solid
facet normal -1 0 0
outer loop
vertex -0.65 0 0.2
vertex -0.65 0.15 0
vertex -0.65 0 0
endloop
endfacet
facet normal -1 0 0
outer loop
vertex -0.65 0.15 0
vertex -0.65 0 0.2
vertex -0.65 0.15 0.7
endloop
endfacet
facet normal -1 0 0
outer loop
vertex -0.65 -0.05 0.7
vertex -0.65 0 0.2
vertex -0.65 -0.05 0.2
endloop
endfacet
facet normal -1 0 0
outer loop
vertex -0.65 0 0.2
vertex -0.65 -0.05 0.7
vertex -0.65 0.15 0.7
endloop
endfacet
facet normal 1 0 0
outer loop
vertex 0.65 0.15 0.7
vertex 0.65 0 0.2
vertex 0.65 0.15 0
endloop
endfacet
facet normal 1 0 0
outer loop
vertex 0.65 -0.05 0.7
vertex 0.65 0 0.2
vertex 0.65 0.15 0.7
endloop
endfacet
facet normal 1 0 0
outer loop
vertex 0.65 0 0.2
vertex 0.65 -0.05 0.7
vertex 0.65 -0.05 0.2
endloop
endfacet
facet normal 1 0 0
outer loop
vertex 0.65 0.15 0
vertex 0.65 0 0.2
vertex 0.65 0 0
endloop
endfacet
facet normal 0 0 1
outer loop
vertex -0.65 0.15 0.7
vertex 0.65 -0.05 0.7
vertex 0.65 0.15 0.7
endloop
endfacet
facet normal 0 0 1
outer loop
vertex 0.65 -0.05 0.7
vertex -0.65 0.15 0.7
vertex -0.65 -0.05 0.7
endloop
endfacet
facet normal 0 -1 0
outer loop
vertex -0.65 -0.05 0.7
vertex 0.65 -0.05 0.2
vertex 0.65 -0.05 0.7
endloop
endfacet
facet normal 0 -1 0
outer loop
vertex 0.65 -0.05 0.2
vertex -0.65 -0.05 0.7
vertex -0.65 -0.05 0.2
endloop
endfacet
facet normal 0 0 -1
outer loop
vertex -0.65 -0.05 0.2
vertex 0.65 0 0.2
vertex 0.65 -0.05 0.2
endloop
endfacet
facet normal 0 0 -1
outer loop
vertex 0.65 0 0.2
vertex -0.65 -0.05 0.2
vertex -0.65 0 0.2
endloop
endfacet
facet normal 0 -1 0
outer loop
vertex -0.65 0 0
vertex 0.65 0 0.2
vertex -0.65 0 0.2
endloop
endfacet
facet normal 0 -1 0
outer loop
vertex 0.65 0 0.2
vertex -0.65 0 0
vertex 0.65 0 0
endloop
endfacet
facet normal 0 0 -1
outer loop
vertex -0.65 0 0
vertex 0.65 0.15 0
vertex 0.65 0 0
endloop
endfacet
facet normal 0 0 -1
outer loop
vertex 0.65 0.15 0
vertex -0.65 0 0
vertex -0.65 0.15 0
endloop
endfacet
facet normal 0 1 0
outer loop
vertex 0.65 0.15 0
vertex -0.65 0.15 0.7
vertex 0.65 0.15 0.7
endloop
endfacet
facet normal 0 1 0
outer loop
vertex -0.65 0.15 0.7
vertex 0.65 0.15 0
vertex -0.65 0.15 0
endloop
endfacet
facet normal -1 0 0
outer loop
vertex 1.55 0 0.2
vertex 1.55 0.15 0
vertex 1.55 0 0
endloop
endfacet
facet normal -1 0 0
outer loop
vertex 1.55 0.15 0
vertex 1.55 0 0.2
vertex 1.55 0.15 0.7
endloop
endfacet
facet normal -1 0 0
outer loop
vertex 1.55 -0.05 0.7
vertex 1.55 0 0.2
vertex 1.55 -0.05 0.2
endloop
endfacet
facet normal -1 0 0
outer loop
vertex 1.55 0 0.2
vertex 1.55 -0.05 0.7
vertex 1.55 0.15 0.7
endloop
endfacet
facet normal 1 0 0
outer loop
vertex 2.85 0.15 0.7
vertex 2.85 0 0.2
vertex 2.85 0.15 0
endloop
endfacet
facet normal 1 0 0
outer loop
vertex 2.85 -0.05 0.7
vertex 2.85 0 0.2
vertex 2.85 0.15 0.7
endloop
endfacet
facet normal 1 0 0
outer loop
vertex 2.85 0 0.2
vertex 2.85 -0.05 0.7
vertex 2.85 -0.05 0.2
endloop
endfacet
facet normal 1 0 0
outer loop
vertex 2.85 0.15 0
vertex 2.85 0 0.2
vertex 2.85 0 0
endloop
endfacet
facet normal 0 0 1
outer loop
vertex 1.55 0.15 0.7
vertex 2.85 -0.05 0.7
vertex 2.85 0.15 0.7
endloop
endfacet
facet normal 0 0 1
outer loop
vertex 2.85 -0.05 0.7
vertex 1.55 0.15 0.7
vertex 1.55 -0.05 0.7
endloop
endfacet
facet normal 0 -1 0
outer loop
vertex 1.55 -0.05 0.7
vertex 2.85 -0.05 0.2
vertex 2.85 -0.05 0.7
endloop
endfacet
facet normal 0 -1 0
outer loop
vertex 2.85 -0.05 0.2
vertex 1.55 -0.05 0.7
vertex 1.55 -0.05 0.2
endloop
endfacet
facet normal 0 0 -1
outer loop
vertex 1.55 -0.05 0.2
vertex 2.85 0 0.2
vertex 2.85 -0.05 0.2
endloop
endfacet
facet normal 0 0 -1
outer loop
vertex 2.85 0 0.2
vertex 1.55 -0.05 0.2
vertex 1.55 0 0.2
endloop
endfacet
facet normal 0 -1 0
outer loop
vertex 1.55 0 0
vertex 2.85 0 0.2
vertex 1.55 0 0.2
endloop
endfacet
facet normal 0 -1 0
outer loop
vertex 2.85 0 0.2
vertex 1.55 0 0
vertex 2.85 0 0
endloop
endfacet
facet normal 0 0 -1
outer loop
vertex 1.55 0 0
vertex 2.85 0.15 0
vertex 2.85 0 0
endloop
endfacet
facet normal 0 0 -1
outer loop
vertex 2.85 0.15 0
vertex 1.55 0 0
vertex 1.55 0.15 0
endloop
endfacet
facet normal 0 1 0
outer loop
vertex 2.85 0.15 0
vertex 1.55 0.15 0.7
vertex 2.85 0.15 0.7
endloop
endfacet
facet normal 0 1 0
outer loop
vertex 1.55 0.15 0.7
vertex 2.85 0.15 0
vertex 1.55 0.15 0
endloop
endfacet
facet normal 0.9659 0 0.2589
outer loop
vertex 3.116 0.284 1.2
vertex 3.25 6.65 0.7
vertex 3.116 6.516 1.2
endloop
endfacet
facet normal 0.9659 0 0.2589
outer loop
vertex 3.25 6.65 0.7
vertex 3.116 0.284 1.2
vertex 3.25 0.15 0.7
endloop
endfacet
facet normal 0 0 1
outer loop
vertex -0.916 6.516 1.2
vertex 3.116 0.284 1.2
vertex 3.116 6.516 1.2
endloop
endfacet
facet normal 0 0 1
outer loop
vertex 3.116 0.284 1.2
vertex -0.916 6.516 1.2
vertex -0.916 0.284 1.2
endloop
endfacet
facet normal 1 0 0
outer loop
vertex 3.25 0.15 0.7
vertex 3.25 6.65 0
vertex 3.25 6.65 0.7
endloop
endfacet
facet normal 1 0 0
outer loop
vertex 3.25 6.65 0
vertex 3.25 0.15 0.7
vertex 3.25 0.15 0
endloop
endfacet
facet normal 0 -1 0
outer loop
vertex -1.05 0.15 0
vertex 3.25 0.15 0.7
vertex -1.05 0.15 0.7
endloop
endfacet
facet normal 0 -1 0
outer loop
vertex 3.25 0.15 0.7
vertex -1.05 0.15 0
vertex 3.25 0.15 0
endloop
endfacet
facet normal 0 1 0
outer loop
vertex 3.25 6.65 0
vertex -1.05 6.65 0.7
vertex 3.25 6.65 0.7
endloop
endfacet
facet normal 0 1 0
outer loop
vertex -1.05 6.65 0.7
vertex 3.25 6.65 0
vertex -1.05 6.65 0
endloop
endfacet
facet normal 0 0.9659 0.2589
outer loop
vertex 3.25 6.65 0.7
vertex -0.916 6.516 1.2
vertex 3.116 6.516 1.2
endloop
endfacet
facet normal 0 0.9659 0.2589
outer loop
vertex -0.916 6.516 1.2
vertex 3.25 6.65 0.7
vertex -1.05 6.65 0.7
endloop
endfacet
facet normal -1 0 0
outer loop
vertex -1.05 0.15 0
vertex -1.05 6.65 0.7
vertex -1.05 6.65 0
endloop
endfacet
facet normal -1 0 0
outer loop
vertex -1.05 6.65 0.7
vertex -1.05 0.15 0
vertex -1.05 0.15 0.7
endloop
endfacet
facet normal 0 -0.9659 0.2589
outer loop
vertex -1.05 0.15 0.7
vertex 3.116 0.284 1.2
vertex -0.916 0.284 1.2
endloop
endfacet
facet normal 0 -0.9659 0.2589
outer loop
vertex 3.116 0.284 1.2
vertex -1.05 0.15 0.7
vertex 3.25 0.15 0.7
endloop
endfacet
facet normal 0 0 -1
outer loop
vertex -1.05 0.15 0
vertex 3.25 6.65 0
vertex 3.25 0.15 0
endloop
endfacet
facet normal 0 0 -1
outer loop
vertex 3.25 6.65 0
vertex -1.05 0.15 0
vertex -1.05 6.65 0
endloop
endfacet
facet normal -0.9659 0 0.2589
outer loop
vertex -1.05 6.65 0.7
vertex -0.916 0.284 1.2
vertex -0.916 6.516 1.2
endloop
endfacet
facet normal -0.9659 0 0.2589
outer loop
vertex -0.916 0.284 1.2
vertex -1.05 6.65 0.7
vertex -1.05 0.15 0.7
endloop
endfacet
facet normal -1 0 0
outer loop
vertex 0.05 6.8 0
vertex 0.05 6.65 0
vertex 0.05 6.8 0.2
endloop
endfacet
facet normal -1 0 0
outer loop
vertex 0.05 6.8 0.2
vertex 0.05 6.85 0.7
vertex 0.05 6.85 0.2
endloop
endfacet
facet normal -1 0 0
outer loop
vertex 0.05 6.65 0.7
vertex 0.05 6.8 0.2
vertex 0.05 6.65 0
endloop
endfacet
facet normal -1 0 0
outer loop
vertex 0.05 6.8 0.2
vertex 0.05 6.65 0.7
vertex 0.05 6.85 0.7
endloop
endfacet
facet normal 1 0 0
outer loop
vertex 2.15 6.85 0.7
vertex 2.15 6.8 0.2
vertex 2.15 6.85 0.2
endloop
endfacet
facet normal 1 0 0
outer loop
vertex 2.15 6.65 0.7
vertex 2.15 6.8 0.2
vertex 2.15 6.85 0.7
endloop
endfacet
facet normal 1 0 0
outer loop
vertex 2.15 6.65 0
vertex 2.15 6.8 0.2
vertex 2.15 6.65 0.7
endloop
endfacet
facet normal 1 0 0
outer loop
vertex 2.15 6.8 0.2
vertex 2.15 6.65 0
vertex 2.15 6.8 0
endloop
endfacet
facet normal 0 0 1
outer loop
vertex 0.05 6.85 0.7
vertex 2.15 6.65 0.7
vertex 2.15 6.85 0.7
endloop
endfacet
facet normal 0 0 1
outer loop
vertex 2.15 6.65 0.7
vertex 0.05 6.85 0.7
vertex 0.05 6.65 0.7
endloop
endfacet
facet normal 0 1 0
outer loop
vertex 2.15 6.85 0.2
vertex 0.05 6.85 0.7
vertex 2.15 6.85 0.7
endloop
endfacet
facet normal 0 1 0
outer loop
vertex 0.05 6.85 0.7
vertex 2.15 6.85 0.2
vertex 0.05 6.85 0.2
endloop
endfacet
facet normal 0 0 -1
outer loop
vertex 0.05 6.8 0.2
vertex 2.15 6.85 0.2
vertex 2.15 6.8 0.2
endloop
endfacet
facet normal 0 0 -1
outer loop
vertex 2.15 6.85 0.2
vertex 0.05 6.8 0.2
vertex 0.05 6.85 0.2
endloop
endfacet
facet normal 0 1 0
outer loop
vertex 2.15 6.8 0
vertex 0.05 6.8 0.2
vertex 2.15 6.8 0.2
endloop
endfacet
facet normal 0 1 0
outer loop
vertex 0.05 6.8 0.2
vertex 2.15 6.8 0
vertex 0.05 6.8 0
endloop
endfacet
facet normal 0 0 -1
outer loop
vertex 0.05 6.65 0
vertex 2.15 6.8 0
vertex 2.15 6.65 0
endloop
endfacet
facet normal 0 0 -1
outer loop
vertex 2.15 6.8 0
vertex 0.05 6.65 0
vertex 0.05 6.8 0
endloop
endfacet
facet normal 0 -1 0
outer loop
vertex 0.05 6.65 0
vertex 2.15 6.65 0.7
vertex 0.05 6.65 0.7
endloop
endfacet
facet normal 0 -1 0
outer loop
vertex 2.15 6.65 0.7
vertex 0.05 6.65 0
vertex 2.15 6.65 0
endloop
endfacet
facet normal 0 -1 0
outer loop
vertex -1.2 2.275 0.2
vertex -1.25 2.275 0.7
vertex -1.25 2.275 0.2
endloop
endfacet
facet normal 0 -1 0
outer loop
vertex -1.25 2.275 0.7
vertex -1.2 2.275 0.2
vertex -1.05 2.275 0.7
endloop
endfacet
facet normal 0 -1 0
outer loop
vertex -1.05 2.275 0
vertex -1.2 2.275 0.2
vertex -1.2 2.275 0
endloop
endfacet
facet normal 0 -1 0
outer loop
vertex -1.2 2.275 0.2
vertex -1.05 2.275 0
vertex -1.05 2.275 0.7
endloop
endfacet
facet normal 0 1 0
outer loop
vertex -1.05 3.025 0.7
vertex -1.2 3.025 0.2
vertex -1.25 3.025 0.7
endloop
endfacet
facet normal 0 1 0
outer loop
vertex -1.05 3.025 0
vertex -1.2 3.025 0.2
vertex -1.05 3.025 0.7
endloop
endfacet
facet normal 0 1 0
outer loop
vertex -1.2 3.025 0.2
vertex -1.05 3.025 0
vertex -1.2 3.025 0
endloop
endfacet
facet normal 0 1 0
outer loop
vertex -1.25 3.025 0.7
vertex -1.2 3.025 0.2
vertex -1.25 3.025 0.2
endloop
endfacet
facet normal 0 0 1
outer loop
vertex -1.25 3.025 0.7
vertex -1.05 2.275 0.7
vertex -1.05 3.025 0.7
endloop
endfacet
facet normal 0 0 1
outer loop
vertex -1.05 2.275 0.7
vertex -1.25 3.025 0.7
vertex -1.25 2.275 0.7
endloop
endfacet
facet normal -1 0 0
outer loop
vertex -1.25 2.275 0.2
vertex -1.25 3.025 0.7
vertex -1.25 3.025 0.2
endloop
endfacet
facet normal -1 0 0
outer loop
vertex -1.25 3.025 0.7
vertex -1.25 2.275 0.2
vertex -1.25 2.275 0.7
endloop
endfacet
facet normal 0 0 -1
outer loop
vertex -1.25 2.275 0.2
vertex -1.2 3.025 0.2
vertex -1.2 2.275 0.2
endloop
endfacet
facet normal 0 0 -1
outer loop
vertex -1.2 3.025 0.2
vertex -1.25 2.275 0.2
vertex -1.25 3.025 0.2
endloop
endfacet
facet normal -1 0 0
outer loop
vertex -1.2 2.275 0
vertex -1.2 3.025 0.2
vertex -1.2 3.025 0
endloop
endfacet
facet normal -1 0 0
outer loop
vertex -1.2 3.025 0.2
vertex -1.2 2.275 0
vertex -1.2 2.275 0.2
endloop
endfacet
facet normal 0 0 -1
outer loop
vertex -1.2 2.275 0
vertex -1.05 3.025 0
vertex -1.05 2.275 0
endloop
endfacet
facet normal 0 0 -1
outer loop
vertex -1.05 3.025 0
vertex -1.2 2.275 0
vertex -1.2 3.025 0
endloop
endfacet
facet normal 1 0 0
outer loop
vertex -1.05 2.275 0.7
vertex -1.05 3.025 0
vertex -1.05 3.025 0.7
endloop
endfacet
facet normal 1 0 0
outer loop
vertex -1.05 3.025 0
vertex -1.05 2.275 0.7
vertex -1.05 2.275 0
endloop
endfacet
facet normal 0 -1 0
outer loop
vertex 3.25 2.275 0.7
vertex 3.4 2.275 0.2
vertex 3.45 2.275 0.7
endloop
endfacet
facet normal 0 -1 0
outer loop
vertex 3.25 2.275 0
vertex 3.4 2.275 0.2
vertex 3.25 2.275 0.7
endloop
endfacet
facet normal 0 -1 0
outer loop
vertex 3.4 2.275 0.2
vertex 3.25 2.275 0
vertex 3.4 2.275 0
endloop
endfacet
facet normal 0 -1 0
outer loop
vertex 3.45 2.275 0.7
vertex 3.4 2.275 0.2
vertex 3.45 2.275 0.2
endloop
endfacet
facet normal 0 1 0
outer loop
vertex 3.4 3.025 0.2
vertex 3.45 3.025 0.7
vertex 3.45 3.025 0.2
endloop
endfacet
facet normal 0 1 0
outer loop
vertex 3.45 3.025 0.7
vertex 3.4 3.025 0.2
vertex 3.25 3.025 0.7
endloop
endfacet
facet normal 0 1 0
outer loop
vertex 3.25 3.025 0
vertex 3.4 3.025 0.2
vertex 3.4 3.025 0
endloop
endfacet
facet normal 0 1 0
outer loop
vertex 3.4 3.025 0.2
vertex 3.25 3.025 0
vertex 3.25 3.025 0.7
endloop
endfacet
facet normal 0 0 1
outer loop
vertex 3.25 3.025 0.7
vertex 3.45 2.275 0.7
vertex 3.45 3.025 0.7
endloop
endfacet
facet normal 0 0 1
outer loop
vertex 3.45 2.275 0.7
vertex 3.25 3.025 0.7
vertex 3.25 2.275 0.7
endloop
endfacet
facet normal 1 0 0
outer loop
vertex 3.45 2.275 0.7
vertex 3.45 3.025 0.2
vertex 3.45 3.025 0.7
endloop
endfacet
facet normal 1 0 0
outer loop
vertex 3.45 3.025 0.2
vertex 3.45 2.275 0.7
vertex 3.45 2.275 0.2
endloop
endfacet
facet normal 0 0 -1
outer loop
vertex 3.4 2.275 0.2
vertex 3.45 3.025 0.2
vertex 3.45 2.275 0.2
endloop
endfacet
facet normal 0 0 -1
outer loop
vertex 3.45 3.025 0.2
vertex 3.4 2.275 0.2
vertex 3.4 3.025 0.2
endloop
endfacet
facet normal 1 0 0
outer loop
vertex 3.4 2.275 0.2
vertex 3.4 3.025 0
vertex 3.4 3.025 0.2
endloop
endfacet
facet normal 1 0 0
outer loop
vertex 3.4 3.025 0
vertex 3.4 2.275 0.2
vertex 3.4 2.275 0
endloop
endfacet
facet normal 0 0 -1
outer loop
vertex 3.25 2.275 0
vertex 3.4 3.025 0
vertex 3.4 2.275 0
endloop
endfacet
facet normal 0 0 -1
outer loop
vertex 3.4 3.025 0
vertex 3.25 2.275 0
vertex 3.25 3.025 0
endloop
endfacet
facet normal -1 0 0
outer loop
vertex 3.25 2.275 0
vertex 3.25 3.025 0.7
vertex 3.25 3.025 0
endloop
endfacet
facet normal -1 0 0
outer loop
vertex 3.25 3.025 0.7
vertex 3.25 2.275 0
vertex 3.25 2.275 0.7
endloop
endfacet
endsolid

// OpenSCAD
// file: pin.scad
// This module outputs bended pin
// _L - whole pin length
// _l - length of bottom part
// _H - whole pin height
// _th - pin thickness
// _a - bending angle
// _W - pin width
module pin(_L,_l,_H,_th,_a,_W)
{
	// Internal variables
    _d1 = _th*sin(_a) / (1-cos(_a));
    _d2 = (_th-_H)*cos(_a) / sin(_a);

	rotate([90,0,90])
    // Extrude the following polygon
	linear_extrude(height = _W, center = true, convexity = 10, twist = 0)
        polygon([[0,0],
                 [_l,0],
				 [_l+_d2,_H-_th],
				 [_L,_H-_th],
				 [_L,_H],
				 [_l+_d2-_d1,_H],
				 [_l-_d1,_th],
				 [0,_th]]);
}

// Example of usage
pin(2,1,1,0.2,115,0.5);
// file: case.scad
// This module draws case
// _L - case length
// _W - case width
// _H - case height
// _ph - top point (vertical) of pin connection area
// _pt - pin thickness
// _atl - case angle top left,
// _atr - case angle top right,
// _atu - case angle top up
// _atd - case angle top down
// _abl - case angle bottom left,
// _abr - case angle bottom right,
// _abu - case angle bottom up
// _abd - case angle bottom down
// _n_x - notch X position relative to case corner
// _n_y - notch Y position relative to case corner
// _n_d - notch diameter
// _n_z - notch_depth
module case(_L,_W,_H,_ph,_pt,_atl,_atr,_atu,_atd,_abl,_abr,_abu,_abd, _n_x, _n_y, _n_d, _n_z)
{
    _tth = _H - _ph;
    _bth = _ph - _pt;
    _dtl = _tth * cos(_atl) / sin(_atl);
    _dtr = _tth * cos(_atr) / sin(_atr);
    _dtu = _tth * cos(_atu) / sin(_atu);
    _dtd = _tth * cos(_atd) / sin(_atd);
    _dbl = _bth * cos(_abl) / sin(_abl);
    _dbr = _bth * cos(_abr) / sin(_abr);
    _dbu = _bth * cos(_abu) / sin(_abu);
    _dbd = _bth * cos(_abd) / sin(_abd);
	// Make case with notch - difference between case and small cylinder
    difference()
    {
        // This is our case
        polyhedron(
            points = [
                // top points
                [ 0 + _dtl, 0 + _dtd, _H],
                [_L - _dtr, 0 + _dtd, _H],
                [_L - _dtr,_W - _dtu, _H],
                [ 0 + _dtl,_W - _dtu, _H],
                // middle top points
                [ 0, 0,_ph],
                [_L, 0,_ph],
                [_L,_W,_ph],
                [ 0,_W,_ph],
                // middle bottom points
                [ 0, 0,_ph - _pt],
                [_L, 0,_ph - _pt],
                [_L,_W,_ph - _pt],
                [ 0,_W,_ph - _pt],
                // bottom points
                [ 0 + _dbl, 0 + _dbd, 0],
                [_L - _dbr, 0 + _dbd, 0],
                [_L - _dbr,_W - _dbu, 0],
                [ 0 + _dbl,_W - _dbu, 0]
            ],
            triangles = [
                // Top
                [ 0, 3, 2, 1],
                // Top sides
                [ 4, 0, 1, 5],
                [ 5, 1, 2, 6],
                [ 6, 2, 3, 7],
                [ 7, 3, 0, 4],
                // Middle sides
                [ 4, 5, 9, 8],
                [ 5, 6,10, 9],
                [ 6, 7,11,10],
                [ 7, 4, 8,11],
                // Bottom sides
                [12, 8, 9,13],
                [13, 9,10,14],
                [14,10,11,15],
                [15,11, 8,12],
                // Bottom
                [12,13,14,15]
            ]
        );
        // This is notch
        translate([_n_x,_n_y,_H])
            cylinder(r = _n_d/2, h = _n_z*2, center = true, $fn=10);
    }
}

// Example of usage
// case(10,5,1.5,0.7,0.3,80,80,80,80,45,45,45,45, 1,1,1);
// main file
use <case.scad>
use <pin.scad>

case_z = 1.2;   // Case size X
case_x = 4.3;   // Case size Y
case_y = 6.5;   // Case size Z

case_a1t = 75;  // Side1 top angle
case_a1b = 90;  // Side1 bottom angle
case_a2t = 75;  // Side2 top angle
case_a2b = 90;  // Side2 bottom angle
case_a3t = 75;  // Side3 top angle
case_a3b = 90;  // Side3 bottom angle
case_a4t = 75;  // Side4 top angle
case_a4b = 90;  // Side4 bottom angle

notch_d=0;          // Notch diameter
notch_depth=0.1;    // Notch depth
notch_x=0.8;        // Notch offset X
notch_y=0.8;        // Notch offset Y

side1_pins = 2;     // Number of pins on side 1
side2_pins = 1;     // Number of pins on side 1
side3_pins = 1;     // Number of pins on side 1
side4_pins = 1;     // Number of pins on side 1
pin_distance1 = 2.2;   // Number of pins on side 1
pin_distance2 = 0;   // Number of pins on side 2
pin_distance3 = 0;   // Number of pins on side 3
pin_distance4 = 0;   // Number of pins on side 4

pin_th = 0.2;
pin_W1 = 1.3;
pin_W2 = 0.75;
pin_W3 = 2.1;
pin_W4 = 0.75;
pin_off1 = 0;
pin_off2 = -0.75;
pin_off3 = 0;
pin_off4 = -0.75;
pin_L = 0.15;
pin_H = case_z/2+pin_th/2;
pin_l = 0.15;
pin_a = 90;

// Array of pins
// _cnt - number of pins
// _distance - distance between pin centres
module pins_array(_cnt, _distance, _pin_w)
{
	if (_cnt>0)
	{
		for (_i = [0:_cnt-1])
		{
			translate([_distance*_i,0,0])
				pin(pin_L,pin_l,pin_H,pin_th,pin_a,_pin_w);
		}
	}
}

// Complete model
union()
{
	// Top pins
	translate([(side1_pins-1)*pin_distance1/2 + (-side3_pins+1)*pin_distance3/2+pin_off3,case_y+pin_L*2,0])
		mirror([0,1,0])
			pins_array(side3_pins, pin_distance3, pin_W3);

	// Bottom pins
    translate([0,0,0])
        pins_array(side1_pins, pin_distance1, pin_W1);

	// Left pins
	translate([-(case_x-(side1_pins-1)*pin_distance1)/2 - pin_L,pin_L+case_y/2-(side4_pins-1)*pin_distance4/2+pin_off4,0])
		mirror([1,0,0])
			rotate([0,0,90])
				pins_array(side4_pins, pin_distance4, pin_W4);

	// Right pins
	translate([-(case_x-(side1_pins-1)*pin_distance1)/2-pin_L+case_x+2*pin_L,pin_L+case_y/2-(side2_pins-1)*pin_distance2/2+pin_off2,0])
		mirror([0,1,0])
			mirror([0,1,0])
				rotate([0,0,90])
					pins_array(side2_pins, pin_distance2, pin_W2);

	// Case
	translate([-(case_x-(side1_pins-1)*pin_distance1)/2,pin_L,0])
		case(case_x,case_y,case_z,pin_H,pin_th,case_a4t,case_a2t,case_a3t,case_a1t,case_a4b,case_a2b,case_a3b,case_a1b, notch_x,notch_y,notch_d,notch_depth);
}
